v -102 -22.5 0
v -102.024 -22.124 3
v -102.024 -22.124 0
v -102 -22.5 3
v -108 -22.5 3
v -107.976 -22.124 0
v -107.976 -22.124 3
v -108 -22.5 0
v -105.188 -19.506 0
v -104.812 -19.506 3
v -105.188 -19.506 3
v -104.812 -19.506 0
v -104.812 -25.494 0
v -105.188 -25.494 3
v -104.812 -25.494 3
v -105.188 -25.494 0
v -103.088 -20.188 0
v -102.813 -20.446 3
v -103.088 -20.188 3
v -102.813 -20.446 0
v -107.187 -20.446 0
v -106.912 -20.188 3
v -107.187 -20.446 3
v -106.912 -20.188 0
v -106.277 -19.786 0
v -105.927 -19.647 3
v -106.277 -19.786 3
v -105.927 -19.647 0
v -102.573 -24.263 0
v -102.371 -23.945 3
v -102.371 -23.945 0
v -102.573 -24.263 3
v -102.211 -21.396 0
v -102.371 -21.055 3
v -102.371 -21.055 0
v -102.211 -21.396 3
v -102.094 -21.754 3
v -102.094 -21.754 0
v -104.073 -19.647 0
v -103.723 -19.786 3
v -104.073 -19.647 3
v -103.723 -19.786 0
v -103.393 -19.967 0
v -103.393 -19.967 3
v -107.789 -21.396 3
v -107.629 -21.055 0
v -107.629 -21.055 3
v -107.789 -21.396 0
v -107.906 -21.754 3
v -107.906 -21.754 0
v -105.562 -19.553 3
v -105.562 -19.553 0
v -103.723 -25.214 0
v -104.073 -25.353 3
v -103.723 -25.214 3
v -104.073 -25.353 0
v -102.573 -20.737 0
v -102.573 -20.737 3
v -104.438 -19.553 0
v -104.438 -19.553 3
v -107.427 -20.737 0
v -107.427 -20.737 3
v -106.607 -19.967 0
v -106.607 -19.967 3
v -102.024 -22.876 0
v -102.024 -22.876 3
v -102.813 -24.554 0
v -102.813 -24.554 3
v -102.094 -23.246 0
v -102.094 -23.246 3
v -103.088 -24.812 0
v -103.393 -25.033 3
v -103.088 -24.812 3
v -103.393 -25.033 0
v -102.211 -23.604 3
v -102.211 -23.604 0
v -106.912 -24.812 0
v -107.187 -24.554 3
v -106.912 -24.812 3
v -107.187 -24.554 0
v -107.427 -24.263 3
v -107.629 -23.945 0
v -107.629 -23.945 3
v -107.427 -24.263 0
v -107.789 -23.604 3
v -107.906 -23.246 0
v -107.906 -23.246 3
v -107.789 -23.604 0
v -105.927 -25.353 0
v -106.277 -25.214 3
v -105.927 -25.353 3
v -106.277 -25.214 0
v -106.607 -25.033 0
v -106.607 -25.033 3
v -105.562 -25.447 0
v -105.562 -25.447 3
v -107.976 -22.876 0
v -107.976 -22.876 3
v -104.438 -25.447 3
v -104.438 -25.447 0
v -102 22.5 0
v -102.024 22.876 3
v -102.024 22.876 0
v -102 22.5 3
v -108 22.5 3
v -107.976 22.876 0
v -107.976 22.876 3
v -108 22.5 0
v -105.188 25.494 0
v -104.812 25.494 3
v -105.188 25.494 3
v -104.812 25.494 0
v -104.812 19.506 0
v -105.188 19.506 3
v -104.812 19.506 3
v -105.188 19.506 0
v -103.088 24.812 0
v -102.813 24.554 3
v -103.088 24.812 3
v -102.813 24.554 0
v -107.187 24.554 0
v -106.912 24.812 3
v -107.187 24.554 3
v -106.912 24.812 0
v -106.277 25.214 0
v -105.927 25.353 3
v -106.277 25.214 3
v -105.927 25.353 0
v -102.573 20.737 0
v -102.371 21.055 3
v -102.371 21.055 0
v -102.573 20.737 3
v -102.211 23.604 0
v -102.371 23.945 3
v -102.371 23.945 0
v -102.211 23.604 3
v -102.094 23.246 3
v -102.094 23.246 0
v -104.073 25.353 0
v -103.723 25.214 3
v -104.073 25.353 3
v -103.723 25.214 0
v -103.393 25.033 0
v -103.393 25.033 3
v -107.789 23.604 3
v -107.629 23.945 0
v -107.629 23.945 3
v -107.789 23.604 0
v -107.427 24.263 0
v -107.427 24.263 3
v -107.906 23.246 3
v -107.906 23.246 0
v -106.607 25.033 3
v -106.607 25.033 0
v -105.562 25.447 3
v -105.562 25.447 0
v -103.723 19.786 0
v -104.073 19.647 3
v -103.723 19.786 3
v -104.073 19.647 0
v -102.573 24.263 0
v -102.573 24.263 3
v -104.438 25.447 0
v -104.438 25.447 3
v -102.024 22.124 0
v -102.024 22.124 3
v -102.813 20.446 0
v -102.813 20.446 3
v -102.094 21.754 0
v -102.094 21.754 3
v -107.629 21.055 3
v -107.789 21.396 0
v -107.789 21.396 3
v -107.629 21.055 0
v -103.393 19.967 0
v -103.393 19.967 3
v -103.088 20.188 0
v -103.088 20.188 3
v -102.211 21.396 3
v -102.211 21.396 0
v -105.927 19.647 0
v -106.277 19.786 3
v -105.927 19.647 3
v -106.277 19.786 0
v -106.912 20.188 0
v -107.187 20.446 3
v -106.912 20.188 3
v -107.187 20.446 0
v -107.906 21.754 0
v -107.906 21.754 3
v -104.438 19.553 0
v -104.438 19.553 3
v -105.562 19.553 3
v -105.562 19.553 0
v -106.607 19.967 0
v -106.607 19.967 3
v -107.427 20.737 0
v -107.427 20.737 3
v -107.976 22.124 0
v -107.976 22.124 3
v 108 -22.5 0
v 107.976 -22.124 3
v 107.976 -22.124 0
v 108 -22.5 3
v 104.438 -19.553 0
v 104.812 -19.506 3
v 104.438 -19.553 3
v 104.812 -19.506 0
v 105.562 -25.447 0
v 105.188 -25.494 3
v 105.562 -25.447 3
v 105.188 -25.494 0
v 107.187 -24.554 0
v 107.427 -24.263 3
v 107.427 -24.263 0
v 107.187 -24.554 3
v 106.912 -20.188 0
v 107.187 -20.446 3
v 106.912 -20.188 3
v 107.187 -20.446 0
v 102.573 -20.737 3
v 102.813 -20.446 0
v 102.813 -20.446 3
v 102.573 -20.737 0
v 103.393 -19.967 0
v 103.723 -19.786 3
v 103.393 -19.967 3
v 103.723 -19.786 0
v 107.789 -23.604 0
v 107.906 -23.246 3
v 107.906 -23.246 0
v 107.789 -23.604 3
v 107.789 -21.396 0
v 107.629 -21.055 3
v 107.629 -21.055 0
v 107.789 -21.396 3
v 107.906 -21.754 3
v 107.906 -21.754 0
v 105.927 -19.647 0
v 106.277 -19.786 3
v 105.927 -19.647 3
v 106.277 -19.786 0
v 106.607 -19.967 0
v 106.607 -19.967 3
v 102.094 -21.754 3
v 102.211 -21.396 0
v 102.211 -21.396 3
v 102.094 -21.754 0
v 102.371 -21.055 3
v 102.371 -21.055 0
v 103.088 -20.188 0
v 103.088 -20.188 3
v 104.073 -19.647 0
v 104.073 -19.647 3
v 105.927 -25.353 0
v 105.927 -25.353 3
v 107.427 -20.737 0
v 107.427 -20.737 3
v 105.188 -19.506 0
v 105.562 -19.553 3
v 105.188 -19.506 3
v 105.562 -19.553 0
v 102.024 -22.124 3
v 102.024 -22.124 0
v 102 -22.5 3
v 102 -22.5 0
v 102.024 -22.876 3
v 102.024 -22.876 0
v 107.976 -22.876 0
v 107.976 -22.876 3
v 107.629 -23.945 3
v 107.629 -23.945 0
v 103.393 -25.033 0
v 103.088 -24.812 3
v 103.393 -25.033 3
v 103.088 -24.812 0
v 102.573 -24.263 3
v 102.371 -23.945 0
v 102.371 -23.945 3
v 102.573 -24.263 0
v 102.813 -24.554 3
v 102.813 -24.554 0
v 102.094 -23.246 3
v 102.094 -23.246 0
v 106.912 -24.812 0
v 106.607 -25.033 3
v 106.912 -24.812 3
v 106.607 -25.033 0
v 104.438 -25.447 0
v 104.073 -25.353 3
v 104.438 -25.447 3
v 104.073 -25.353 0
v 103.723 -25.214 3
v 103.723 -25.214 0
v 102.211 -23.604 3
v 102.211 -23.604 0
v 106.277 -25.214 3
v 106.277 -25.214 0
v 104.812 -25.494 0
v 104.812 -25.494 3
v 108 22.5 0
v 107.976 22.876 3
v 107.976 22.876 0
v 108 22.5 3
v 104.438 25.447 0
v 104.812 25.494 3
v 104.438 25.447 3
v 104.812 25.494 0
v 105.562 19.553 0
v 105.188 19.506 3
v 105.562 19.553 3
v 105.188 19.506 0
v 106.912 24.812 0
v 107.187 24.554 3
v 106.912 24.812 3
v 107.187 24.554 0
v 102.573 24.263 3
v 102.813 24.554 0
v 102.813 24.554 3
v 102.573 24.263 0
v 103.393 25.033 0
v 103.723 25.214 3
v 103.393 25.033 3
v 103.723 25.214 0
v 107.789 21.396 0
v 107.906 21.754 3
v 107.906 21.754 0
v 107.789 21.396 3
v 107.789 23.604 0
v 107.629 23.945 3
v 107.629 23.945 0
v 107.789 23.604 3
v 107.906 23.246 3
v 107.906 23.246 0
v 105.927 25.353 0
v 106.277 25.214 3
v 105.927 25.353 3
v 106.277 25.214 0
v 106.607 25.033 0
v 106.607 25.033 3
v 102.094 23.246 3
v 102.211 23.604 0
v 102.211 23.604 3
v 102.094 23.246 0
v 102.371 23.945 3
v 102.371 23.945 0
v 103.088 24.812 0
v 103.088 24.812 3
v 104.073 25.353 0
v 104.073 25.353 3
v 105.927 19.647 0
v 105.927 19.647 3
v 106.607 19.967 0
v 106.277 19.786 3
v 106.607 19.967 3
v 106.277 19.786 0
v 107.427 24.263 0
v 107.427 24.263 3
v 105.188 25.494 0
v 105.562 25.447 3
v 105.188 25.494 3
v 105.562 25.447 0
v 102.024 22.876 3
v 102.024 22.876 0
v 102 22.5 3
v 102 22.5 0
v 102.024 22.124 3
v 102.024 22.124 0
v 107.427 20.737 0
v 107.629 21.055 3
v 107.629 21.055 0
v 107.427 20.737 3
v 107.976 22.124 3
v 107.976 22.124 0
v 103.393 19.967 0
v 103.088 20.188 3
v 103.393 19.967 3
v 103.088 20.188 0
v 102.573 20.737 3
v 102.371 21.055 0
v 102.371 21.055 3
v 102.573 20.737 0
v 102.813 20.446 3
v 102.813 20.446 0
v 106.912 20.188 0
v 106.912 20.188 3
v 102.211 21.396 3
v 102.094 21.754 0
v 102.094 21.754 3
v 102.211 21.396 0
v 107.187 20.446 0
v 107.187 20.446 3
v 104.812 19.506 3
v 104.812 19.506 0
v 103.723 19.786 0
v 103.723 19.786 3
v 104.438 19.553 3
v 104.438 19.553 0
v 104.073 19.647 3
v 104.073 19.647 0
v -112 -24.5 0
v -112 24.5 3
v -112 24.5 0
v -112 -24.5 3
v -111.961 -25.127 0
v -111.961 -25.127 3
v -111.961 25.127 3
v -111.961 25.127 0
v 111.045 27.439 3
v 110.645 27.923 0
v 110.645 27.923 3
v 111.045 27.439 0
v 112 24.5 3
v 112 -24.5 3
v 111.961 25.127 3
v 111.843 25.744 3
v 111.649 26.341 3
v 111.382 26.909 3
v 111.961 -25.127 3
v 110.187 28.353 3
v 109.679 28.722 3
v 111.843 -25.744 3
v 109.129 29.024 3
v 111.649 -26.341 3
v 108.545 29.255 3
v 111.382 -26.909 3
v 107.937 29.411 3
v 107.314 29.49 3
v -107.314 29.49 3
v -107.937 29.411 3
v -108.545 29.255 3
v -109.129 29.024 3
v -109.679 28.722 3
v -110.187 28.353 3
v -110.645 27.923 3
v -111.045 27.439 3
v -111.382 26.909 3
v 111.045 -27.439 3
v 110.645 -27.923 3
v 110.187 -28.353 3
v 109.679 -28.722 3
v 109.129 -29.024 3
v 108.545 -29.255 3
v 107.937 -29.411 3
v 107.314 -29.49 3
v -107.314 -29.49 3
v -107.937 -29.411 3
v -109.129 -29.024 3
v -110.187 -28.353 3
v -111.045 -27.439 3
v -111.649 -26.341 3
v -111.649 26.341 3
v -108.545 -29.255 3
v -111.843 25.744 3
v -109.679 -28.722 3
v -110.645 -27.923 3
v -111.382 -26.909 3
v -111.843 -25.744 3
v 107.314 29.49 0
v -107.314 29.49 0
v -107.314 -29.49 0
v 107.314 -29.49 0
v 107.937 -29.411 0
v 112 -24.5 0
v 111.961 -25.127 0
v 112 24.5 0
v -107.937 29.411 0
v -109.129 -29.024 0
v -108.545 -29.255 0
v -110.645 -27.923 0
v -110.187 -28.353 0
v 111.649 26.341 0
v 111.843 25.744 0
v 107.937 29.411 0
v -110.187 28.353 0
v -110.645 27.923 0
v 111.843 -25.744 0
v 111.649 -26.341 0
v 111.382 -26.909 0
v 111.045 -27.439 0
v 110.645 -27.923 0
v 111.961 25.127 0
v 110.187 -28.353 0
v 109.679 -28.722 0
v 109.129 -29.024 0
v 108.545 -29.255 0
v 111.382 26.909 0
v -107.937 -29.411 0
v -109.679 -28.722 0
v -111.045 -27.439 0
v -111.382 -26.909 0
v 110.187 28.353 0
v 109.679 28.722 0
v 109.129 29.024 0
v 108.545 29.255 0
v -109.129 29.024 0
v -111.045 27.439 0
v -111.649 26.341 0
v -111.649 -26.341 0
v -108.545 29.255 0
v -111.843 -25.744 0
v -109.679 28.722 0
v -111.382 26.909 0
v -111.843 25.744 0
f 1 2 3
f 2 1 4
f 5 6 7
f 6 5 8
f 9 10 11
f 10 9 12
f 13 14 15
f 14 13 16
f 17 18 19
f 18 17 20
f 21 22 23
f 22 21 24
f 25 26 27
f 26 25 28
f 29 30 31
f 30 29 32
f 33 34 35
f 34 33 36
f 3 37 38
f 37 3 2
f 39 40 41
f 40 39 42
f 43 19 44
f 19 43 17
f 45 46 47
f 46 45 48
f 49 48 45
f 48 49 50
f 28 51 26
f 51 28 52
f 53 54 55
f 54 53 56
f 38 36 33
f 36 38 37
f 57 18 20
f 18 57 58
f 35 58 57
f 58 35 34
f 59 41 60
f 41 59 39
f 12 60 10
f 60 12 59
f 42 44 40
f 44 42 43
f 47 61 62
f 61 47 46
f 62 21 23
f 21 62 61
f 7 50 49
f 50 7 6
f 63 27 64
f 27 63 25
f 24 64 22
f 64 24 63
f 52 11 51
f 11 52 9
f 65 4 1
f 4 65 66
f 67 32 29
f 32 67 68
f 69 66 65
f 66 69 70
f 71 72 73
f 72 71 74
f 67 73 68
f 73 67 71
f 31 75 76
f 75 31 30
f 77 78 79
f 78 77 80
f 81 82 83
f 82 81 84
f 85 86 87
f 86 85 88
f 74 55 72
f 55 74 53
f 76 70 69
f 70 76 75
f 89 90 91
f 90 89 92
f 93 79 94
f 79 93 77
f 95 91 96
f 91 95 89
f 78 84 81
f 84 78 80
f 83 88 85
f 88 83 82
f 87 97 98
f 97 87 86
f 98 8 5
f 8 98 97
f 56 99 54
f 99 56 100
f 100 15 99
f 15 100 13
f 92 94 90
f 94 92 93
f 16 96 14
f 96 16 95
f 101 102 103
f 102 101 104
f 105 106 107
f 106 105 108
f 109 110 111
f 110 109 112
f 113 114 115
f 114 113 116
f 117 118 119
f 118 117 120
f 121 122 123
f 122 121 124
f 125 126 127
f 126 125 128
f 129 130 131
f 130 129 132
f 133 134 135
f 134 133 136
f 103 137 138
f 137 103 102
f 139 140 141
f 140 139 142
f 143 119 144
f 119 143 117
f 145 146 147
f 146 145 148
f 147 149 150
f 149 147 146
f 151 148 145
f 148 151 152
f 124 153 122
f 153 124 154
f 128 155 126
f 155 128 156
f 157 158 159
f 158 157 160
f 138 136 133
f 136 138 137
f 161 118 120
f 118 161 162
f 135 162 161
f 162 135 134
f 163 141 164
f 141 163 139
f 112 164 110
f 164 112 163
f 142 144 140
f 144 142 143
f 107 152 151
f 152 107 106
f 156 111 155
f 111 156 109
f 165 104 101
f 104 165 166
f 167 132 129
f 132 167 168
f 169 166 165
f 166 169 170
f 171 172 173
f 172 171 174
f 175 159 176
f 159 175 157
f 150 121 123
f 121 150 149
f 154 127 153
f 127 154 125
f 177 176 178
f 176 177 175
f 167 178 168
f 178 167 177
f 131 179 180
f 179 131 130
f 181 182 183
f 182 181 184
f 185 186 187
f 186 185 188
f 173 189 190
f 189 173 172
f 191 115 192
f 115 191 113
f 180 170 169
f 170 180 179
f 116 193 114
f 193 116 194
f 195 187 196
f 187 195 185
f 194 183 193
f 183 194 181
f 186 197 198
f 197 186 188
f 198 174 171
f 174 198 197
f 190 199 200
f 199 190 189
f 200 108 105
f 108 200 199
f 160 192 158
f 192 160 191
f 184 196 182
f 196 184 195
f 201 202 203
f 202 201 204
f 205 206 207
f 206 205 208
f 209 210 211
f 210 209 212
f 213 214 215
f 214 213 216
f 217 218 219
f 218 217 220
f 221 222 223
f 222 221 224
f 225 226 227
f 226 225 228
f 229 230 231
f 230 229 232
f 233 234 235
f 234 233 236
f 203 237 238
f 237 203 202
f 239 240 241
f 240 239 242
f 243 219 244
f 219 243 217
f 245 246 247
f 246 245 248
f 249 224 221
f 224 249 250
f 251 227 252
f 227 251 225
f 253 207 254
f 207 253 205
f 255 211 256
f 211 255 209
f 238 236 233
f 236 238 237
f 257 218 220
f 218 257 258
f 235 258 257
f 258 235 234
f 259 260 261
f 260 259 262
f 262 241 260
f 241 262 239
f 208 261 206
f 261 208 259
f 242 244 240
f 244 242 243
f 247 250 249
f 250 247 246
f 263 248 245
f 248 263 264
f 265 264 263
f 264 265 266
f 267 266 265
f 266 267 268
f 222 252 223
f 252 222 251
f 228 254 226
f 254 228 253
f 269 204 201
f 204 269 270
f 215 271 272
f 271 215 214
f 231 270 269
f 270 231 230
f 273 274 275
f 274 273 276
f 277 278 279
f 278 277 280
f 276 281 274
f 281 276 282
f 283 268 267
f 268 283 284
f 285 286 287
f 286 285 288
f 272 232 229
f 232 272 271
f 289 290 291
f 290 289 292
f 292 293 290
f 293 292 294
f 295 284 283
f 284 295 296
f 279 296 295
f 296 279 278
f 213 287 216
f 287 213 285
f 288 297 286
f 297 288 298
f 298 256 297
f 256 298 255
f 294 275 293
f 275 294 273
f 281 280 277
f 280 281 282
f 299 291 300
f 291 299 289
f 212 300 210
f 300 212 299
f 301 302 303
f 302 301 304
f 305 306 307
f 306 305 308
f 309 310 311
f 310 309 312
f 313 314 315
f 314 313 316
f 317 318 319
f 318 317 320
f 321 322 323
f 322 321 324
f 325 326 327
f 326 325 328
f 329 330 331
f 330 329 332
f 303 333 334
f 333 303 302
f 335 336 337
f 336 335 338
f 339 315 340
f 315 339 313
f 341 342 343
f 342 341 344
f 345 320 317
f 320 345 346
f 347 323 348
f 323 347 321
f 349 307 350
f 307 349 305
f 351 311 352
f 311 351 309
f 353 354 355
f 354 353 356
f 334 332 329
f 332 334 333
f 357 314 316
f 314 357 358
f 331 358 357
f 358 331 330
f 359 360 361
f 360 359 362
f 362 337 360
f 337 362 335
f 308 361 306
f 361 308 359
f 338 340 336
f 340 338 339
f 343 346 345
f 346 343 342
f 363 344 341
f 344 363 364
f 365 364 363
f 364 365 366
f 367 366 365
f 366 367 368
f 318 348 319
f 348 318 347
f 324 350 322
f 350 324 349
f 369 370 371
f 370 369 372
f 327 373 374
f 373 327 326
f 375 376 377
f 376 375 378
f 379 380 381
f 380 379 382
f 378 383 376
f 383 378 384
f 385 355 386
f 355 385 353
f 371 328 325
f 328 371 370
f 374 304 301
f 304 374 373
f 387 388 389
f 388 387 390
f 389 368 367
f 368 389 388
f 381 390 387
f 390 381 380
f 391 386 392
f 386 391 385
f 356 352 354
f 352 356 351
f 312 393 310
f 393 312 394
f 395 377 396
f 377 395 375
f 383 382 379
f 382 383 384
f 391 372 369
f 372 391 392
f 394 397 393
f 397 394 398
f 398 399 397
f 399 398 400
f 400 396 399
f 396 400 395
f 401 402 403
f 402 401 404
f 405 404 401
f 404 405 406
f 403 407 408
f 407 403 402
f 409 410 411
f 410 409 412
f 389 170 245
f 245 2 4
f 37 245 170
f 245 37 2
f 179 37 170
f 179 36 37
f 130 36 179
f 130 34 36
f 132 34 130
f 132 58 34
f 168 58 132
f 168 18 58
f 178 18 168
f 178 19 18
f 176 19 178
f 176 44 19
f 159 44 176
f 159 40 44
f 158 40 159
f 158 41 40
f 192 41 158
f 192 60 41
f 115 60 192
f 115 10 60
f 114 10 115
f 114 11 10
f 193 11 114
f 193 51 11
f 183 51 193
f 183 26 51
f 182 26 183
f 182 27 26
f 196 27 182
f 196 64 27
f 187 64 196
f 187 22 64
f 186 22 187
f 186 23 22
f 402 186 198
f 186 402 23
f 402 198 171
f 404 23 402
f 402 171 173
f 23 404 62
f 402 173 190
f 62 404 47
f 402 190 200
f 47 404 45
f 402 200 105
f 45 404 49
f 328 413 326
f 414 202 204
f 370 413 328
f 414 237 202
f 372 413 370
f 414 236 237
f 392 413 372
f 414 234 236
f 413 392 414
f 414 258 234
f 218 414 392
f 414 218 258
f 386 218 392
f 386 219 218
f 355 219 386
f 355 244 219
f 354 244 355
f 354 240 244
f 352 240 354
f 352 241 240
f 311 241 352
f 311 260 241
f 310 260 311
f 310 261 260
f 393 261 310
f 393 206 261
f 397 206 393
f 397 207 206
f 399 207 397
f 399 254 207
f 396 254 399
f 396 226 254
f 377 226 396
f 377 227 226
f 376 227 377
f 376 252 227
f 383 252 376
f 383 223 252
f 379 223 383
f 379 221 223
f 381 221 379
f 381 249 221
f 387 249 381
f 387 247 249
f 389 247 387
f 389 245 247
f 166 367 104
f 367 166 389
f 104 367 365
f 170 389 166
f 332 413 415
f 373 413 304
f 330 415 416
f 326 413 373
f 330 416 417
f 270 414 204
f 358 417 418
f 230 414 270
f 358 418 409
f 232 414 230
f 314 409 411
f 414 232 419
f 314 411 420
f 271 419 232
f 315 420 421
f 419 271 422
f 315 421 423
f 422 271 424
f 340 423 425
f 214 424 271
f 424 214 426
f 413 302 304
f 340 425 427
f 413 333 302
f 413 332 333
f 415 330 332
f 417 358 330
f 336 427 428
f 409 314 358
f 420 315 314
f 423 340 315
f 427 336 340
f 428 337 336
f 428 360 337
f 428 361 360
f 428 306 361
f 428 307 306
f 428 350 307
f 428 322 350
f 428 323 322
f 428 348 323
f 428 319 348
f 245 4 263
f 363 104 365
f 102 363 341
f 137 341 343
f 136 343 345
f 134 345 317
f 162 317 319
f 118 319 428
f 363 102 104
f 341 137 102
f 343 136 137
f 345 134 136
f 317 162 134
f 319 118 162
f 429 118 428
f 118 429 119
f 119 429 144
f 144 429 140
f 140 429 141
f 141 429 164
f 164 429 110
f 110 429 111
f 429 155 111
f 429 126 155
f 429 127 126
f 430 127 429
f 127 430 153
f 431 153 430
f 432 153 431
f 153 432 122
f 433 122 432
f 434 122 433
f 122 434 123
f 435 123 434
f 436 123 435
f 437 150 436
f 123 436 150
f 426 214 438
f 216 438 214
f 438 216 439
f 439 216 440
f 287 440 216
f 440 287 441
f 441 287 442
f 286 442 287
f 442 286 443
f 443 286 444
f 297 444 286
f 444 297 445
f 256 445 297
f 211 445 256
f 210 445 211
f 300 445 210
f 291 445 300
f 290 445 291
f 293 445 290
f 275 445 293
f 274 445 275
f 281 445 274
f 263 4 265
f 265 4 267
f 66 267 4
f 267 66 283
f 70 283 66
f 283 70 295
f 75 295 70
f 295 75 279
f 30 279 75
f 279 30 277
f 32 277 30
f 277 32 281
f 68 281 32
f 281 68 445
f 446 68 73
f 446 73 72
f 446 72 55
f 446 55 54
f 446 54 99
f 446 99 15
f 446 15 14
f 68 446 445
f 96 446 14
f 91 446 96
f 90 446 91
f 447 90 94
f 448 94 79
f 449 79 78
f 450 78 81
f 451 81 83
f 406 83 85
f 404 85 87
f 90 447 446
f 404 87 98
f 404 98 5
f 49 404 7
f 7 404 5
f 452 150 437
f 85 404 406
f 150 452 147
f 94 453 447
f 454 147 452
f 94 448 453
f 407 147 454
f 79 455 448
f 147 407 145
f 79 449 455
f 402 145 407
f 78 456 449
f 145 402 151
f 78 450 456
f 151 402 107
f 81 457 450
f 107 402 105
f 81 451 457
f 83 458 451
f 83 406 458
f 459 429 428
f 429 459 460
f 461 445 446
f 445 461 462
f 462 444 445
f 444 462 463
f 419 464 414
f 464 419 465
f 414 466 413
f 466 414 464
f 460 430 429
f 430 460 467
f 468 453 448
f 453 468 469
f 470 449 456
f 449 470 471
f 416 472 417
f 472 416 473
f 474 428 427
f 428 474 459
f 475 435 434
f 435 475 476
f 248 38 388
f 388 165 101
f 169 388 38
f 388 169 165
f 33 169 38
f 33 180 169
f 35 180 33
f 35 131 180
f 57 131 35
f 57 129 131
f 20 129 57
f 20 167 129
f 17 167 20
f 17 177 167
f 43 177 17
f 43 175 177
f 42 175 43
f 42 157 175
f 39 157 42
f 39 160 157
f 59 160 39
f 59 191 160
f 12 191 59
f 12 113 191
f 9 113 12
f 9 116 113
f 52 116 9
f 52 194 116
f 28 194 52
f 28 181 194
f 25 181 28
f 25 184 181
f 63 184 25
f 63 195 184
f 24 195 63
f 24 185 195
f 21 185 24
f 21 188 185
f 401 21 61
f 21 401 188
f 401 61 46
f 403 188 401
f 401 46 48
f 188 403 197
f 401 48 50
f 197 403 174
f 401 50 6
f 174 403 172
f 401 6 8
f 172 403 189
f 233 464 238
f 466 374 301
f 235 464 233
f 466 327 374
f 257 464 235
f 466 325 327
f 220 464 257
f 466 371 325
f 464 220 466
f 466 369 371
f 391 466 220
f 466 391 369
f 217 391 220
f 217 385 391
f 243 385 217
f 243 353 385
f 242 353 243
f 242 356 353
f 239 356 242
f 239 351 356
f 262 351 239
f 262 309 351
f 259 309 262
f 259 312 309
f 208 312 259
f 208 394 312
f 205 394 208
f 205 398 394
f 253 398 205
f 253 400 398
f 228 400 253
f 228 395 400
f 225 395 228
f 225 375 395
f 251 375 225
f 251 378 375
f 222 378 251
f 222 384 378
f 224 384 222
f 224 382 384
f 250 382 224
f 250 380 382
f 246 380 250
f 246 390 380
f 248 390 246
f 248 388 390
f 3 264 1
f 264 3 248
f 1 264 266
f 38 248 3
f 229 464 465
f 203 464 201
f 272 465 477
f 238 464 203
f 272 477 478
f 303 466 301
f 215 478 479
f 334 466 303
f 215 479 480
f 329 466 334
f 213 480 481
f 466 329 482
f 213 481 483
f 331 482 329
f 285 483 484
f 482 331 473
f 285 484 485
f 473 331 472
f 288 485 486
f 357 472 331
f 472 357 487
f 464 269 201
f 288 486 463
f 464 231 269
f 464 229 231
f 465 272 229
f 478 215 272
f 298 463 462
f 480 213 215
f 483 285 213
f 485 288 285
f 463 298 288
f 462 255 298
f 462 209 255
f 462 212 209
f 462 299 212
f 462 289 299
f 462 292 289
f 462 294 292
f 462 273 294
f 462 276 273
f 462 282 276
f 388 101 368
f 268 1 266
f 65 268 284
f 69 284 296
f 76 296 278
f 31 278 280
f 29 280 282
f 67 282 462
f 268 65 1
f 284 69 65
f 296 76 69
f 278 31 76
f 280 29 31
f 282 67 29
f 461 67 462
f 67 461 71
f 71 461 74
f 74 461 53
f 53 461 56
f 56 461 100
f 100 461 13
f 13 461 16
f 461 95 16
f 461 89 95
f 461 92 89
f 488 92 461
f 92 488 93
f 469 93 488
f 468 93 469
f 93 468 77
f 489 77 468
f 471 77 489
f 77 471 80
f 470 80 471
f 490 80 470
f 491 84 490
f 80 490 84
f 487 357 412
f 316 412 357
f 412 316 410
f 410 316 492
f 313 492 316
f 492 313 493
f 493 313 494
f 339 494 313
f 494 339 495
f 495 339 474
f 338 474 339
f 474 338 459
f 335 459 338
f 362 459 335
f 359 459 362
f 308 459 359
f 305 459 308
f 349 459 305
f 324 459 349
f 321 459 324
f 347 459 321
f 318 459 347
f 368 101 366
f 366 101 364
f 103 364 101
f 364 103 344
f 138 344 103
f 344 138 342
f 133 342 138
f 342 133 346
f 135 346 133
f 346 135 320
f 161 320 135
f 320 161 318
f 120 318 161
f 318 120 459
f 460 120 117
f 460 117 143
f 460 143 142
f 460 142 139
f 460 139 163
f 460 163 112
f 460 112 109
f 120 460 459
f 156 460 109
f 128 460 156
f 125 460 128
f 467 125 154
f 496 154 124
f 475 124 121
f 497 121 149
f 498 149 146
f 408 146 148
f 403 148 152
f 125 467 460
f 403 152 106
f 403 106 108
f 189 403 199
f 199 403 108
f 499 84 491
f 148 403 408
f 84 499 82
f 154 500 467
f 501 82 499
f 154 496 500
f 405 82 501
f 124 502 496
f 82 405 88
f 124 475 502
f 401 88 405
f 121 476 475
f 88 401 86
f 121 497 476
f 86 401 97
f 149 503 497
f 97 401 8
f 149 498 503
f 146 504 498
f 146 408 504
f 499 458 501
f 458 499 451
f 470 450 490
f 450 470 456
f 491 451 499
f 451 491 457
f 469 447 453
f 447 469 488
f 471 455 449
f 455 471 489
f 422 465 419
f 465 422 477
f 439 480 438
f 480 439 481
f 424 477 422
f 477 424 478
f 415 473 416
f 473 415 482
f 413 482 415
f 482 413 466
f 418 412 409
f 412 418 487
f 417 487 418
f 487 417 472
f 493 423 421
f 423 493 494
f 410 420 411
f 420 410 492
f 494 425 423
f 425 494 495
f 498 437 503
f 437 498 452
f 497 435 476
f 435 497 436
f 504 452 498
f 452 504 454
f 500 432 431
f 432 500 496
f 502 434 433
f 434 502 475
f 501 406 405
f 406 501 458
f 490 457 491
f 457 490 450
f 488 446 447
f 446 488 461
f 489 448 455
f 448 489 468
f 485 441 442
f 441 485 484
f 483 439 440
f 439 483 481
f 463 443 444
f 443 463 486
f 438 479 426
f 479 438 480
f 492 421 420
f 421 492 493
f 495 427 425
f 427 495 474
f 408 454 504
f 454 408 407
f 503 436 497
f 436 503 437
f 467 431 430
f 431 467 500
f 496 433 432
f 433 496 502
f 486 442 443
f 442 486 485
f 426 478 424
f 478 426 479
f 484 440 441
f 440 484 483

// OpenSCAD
$fn = 50;


difference() {
	union() {
		hull() {
			translate(v = [-107.0000000000, 24.5000000000, 0]) {
				cylinder(h = 3, r = 5);
			}
			translate(v = [107.0000000000, 24.5000000000, 0]) {
				cylinder(h = 3, r = 5);
			}
			translate(v = [-107.0000000000, -24.5000000000, 0]) {
				cylinder(h = 3, r = 5);
			}
			translate(v = [107.0000000000, -24.5000000000, 0]) {
				cylinder(h = 3, r = 5);
			}
		}
	}
	union() {
		translate(v = [-105.0000000000, -22.5000000000, -100.0000000000]) {
			cylinder(h = 200, r = 3.0000000000);
		}
		translate(v = [-105.0000000000, 22.5000000000, -100.0000000000]) {
			cylinder(h = 200, r = 3.0000000000);
		}
		translate(v = [105.0000000000, -22.5000000000, -100.0000000000]) {
			cylinder(h = 200, r = 3.0000000000);
		}
		translate(v = [105.0000000000, 22.5000000000, -100.0000000000]) {
			cylinder(h = 200, r = 3.0000000000);
		}
	}
}
